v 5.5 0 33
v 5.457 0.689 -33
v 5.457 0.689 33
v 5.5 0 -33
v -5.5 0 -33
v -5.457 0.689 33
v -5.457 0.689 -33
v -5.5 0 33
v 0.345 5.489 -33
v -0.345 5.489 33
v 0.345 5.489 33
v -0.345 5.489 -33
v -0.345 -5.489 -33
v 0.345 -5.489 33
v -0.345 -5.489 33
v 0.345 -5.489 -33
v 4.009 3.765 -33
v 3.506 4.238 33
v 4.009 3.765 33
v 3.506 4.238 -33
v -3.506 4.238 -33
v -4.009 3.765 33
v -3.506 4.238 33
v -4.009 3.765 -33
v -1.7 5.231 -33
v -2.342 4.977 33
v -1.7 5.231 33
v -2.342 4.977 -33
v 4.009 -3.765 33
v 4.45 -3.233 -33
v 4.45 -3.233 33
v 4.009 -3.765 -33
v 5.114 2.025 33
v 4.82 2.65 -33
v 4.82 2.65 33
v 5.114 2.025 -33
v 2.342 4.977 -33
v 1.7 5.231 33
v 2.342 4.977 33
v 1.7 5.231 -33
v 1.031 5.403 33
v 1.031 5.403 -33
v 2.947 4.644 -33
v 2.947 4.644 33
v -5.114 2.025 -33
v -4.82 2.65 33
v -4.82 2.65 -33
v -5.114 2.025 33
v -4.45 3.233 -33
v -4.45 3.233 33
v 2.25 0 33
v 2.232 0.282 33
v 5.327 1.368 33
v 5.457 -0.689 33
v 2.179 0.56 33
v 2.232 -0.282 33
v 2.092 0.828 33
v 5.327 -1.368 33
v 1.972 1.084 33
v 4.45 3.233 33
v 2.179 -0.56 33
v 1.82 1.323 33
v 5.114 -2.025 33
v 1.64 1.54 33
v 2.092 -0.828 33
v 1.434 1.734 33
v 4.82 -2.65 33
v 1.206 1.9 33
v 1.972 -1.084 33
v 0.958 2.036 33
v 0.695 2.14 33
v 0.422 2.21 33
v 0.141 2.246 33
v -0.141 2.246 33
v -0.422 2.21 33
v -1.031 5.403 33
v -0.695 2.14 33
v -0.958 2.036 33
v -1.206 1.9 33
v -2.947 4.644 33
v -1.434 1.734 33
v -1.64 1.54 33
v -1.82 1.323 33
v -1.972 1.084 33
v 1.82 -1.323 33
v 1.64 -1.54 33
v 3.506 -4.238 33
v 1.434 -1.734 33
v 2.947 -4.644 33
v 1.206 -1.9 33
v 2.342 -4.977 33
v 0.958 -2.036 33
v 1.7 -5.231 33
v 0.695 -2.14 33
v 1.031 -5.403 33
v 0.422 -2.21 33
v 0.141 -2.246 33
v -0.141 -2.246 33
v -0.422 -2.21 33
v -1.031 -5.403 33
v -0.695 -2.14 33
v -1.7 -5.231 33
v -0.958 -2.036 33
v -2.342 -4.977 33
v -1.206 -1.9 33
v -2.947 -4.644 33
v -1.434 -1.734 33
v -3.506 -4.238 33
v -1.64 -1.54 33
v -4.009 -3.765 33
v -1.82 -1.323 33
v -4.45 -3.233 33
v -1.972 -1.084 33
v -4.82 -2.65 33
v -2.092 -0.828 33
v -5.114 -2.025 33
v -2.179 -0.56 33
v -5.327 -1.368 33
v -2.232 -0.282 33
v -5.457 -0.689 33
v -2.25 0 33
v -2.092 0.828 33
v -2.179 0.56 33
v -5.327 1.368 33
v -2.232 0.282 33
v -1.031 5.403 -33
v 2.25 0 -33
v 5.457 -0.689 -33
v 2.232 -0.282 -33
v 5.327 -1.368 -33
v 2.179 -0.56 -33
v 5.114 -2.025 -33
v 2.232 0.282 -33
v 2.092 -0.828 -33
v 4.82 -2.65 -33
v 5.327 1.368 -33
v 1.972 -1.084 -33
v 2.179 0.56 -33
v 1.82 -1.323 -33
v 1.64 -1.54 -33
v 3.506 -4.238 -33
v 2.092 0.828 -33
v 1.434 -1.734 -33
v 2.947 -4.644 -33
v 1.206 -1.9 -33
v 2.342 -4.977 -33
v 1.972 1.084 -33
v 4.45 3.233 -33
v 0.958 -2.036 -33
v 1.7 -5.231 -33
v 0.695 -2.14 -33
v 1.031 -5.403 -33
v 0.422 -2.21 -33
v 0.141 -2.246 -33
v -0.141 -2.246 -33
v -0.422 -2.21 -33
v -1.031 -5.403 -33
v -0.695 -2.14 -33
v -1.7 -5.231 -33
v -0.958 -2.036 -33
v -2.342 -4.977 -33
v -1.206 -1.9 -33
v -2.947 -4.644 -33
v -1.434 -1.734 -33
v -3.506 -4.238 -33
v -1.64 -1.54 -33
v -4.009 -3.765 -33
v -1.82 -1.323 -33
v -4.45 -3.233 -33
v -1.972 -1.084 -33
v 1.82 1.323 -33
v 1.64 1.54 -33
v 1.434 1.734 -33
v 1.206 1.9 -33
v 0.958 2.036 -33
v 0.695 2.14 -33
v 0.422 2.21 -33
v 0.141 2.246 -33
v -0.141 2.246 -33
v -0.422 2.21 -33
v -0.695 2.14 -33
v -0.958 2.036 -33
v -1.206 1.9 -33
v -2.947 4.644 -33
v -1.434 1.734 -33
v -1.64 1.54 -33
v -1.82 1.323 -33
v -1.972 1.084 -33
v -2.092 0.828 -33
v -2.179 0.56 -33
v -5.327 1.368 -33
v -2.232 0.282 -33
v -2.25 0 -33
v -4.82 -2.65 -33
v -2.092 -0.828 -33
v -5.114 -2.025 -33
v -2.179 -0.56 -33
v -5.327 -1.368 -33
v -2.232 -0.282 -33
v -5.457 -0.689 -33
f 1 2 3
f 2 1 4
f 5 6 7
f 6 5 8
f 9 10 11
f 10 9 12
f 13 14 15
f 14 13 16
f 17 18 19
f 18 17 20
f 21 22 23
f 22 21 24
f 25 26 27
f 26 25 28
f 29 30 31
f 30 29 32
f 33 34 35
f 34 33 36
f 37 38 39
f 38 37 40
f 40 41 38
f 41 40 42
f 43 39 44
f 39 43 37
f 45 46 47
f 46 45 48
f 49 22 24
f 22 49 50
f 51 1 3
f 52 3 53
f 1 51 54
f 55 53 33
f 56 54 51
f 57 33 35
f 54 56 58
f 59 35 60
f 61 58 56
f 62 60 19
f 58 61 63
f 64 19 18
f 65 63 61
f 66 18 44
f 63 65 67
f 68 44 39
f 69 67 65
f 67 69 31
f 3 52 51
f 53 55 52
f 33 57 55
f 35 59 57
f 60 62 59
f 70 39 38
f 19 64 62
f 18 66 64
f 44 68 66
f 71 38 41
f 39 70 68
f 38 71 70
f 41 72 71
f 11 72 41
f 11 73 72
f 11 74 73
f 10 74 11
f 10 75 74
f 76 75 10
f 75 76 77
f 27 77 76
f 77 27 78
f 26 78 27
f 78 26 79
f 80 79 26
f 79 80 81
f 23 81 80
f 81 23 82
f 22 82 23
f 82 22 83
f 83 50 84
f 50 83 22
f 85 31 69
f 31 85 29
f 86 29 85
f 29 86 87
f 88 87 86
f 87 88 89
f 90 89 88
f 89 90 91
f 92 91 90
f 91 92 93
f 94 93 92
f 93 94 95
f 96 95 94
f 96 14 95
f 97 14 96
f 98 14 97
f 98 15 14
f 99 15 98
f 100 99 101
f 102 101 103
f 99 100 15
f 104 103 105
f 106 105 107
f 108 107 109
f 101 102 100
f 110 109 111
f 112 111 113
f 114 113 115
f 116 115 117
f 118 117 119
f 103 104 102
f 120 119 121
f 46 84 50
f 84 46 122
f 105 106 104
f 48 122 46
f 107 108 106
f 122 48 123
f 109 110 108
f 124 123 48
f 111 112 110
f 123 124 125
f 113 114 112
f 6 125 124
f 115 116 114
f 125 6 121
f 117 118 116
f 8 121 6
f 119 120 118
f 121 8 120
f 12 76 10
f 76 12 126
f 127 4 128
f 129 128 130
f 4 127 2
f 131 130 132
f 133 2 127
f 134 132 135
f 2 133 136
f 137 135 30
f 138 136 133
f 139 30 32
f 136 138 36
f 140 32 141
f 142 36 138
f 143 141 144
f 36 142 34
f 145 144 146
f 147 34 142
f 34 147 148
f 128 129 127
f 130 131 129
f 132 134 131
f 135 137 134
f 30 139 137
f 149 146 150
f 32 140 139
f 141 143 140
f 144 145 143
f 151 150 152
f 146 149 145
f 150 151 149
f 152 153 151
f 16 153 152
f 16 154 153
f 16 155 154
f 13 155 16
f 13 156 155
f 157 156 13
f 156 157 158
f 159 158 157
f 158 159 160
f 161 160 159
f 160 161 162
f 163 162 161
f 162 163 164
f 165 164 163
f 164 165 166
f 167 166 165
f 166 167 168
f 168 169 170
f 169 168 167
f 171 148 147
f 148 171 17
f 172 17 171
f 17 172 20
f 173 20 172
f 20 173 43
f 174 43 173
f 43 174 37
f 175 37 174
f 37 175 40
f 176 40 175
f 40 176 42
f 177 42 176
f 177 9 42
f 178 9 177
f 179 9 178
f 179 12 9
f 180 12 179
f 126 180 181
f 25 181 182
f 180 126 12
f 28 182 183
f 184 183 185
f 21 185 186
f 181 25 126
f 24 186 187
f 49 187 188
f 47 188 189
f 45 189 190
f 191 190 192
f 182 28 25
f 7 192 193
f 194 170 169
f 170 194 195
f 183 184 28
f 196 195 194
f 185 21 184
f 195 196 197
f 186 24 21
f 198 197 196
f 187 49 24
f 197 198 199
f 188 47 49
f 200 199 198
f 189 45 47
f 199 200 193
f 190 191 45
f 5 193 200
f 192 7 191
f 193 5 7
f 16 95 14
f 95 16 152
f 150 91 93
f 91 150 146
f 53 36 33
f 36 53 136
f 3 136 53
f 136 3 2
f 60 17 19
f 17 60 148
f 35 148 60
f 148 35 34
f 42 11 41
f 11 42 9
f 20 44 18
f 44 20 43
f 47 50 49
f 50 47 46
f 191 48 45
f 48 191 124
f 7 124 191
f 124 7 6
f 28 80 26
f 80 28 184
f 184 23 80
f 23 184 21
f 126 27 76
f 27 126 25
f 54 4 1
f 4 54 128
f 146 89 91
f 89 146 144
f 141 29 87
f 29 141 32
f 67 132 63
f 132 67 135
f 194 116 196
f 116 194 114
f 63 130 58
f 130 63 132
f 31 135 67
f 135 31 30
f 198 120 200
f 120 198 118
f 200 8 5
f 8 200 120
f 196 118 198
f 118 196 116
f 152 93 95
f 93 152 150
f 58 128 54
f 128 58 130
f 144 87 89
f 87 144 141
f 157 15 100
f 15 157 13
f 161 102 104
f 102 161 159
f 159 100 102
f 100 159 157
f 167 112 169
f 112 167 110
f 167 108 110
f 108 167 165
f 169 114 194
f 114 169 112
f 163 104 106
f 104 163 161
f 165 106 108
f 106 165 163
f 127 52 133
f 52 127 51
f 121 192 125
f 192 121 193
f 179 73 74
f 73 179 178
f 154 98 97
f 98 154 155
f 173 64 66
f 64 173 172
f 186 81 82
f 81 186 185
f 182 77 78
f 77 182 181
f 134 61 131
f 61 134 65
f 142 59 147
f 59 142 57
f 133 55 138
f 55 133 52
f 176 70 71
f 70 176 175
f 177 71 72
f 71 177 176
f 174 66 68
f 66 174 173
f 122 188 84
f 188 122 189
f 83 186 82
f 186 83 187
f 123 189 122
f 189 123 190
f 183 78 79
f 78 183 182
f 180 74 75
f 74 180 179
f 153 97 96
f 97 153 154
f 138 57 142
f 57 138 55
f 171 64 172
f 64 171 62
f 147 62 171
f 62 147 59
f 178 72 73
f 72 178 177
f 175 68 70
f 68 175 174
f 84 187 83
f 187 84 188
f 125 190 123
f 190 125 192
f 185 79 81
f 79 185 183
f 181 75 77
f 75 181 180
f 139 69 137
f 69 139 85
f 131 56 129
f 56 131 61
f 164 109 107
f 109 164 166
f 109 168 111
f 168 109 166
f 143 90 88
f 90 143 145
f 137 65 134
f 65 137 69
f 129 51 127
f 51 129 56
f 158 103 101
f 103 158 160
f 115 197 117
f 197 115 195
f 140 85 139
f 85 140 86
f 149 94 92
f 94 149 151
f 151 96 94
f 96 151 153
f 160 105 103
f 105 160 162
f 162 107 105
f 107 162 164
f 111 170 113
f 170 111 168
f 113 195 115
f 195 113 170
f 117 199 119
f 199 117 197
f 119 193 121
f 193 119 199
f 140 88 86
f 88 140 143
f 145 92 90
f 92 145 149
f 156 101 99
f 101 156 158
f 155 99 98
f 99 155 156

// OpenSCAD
$fn = 50;


difference() {
	union() {
		translate(v = [0, 0, -33.0000000000]) {
			cylinder(h = 66, r = 5.5000000000);
		}
	}
	union() {
		translate(v = [0, 0, -100.0000000000]) {
			cylinder(h = 200, r = 2.2500000000);
		}
	}
}
